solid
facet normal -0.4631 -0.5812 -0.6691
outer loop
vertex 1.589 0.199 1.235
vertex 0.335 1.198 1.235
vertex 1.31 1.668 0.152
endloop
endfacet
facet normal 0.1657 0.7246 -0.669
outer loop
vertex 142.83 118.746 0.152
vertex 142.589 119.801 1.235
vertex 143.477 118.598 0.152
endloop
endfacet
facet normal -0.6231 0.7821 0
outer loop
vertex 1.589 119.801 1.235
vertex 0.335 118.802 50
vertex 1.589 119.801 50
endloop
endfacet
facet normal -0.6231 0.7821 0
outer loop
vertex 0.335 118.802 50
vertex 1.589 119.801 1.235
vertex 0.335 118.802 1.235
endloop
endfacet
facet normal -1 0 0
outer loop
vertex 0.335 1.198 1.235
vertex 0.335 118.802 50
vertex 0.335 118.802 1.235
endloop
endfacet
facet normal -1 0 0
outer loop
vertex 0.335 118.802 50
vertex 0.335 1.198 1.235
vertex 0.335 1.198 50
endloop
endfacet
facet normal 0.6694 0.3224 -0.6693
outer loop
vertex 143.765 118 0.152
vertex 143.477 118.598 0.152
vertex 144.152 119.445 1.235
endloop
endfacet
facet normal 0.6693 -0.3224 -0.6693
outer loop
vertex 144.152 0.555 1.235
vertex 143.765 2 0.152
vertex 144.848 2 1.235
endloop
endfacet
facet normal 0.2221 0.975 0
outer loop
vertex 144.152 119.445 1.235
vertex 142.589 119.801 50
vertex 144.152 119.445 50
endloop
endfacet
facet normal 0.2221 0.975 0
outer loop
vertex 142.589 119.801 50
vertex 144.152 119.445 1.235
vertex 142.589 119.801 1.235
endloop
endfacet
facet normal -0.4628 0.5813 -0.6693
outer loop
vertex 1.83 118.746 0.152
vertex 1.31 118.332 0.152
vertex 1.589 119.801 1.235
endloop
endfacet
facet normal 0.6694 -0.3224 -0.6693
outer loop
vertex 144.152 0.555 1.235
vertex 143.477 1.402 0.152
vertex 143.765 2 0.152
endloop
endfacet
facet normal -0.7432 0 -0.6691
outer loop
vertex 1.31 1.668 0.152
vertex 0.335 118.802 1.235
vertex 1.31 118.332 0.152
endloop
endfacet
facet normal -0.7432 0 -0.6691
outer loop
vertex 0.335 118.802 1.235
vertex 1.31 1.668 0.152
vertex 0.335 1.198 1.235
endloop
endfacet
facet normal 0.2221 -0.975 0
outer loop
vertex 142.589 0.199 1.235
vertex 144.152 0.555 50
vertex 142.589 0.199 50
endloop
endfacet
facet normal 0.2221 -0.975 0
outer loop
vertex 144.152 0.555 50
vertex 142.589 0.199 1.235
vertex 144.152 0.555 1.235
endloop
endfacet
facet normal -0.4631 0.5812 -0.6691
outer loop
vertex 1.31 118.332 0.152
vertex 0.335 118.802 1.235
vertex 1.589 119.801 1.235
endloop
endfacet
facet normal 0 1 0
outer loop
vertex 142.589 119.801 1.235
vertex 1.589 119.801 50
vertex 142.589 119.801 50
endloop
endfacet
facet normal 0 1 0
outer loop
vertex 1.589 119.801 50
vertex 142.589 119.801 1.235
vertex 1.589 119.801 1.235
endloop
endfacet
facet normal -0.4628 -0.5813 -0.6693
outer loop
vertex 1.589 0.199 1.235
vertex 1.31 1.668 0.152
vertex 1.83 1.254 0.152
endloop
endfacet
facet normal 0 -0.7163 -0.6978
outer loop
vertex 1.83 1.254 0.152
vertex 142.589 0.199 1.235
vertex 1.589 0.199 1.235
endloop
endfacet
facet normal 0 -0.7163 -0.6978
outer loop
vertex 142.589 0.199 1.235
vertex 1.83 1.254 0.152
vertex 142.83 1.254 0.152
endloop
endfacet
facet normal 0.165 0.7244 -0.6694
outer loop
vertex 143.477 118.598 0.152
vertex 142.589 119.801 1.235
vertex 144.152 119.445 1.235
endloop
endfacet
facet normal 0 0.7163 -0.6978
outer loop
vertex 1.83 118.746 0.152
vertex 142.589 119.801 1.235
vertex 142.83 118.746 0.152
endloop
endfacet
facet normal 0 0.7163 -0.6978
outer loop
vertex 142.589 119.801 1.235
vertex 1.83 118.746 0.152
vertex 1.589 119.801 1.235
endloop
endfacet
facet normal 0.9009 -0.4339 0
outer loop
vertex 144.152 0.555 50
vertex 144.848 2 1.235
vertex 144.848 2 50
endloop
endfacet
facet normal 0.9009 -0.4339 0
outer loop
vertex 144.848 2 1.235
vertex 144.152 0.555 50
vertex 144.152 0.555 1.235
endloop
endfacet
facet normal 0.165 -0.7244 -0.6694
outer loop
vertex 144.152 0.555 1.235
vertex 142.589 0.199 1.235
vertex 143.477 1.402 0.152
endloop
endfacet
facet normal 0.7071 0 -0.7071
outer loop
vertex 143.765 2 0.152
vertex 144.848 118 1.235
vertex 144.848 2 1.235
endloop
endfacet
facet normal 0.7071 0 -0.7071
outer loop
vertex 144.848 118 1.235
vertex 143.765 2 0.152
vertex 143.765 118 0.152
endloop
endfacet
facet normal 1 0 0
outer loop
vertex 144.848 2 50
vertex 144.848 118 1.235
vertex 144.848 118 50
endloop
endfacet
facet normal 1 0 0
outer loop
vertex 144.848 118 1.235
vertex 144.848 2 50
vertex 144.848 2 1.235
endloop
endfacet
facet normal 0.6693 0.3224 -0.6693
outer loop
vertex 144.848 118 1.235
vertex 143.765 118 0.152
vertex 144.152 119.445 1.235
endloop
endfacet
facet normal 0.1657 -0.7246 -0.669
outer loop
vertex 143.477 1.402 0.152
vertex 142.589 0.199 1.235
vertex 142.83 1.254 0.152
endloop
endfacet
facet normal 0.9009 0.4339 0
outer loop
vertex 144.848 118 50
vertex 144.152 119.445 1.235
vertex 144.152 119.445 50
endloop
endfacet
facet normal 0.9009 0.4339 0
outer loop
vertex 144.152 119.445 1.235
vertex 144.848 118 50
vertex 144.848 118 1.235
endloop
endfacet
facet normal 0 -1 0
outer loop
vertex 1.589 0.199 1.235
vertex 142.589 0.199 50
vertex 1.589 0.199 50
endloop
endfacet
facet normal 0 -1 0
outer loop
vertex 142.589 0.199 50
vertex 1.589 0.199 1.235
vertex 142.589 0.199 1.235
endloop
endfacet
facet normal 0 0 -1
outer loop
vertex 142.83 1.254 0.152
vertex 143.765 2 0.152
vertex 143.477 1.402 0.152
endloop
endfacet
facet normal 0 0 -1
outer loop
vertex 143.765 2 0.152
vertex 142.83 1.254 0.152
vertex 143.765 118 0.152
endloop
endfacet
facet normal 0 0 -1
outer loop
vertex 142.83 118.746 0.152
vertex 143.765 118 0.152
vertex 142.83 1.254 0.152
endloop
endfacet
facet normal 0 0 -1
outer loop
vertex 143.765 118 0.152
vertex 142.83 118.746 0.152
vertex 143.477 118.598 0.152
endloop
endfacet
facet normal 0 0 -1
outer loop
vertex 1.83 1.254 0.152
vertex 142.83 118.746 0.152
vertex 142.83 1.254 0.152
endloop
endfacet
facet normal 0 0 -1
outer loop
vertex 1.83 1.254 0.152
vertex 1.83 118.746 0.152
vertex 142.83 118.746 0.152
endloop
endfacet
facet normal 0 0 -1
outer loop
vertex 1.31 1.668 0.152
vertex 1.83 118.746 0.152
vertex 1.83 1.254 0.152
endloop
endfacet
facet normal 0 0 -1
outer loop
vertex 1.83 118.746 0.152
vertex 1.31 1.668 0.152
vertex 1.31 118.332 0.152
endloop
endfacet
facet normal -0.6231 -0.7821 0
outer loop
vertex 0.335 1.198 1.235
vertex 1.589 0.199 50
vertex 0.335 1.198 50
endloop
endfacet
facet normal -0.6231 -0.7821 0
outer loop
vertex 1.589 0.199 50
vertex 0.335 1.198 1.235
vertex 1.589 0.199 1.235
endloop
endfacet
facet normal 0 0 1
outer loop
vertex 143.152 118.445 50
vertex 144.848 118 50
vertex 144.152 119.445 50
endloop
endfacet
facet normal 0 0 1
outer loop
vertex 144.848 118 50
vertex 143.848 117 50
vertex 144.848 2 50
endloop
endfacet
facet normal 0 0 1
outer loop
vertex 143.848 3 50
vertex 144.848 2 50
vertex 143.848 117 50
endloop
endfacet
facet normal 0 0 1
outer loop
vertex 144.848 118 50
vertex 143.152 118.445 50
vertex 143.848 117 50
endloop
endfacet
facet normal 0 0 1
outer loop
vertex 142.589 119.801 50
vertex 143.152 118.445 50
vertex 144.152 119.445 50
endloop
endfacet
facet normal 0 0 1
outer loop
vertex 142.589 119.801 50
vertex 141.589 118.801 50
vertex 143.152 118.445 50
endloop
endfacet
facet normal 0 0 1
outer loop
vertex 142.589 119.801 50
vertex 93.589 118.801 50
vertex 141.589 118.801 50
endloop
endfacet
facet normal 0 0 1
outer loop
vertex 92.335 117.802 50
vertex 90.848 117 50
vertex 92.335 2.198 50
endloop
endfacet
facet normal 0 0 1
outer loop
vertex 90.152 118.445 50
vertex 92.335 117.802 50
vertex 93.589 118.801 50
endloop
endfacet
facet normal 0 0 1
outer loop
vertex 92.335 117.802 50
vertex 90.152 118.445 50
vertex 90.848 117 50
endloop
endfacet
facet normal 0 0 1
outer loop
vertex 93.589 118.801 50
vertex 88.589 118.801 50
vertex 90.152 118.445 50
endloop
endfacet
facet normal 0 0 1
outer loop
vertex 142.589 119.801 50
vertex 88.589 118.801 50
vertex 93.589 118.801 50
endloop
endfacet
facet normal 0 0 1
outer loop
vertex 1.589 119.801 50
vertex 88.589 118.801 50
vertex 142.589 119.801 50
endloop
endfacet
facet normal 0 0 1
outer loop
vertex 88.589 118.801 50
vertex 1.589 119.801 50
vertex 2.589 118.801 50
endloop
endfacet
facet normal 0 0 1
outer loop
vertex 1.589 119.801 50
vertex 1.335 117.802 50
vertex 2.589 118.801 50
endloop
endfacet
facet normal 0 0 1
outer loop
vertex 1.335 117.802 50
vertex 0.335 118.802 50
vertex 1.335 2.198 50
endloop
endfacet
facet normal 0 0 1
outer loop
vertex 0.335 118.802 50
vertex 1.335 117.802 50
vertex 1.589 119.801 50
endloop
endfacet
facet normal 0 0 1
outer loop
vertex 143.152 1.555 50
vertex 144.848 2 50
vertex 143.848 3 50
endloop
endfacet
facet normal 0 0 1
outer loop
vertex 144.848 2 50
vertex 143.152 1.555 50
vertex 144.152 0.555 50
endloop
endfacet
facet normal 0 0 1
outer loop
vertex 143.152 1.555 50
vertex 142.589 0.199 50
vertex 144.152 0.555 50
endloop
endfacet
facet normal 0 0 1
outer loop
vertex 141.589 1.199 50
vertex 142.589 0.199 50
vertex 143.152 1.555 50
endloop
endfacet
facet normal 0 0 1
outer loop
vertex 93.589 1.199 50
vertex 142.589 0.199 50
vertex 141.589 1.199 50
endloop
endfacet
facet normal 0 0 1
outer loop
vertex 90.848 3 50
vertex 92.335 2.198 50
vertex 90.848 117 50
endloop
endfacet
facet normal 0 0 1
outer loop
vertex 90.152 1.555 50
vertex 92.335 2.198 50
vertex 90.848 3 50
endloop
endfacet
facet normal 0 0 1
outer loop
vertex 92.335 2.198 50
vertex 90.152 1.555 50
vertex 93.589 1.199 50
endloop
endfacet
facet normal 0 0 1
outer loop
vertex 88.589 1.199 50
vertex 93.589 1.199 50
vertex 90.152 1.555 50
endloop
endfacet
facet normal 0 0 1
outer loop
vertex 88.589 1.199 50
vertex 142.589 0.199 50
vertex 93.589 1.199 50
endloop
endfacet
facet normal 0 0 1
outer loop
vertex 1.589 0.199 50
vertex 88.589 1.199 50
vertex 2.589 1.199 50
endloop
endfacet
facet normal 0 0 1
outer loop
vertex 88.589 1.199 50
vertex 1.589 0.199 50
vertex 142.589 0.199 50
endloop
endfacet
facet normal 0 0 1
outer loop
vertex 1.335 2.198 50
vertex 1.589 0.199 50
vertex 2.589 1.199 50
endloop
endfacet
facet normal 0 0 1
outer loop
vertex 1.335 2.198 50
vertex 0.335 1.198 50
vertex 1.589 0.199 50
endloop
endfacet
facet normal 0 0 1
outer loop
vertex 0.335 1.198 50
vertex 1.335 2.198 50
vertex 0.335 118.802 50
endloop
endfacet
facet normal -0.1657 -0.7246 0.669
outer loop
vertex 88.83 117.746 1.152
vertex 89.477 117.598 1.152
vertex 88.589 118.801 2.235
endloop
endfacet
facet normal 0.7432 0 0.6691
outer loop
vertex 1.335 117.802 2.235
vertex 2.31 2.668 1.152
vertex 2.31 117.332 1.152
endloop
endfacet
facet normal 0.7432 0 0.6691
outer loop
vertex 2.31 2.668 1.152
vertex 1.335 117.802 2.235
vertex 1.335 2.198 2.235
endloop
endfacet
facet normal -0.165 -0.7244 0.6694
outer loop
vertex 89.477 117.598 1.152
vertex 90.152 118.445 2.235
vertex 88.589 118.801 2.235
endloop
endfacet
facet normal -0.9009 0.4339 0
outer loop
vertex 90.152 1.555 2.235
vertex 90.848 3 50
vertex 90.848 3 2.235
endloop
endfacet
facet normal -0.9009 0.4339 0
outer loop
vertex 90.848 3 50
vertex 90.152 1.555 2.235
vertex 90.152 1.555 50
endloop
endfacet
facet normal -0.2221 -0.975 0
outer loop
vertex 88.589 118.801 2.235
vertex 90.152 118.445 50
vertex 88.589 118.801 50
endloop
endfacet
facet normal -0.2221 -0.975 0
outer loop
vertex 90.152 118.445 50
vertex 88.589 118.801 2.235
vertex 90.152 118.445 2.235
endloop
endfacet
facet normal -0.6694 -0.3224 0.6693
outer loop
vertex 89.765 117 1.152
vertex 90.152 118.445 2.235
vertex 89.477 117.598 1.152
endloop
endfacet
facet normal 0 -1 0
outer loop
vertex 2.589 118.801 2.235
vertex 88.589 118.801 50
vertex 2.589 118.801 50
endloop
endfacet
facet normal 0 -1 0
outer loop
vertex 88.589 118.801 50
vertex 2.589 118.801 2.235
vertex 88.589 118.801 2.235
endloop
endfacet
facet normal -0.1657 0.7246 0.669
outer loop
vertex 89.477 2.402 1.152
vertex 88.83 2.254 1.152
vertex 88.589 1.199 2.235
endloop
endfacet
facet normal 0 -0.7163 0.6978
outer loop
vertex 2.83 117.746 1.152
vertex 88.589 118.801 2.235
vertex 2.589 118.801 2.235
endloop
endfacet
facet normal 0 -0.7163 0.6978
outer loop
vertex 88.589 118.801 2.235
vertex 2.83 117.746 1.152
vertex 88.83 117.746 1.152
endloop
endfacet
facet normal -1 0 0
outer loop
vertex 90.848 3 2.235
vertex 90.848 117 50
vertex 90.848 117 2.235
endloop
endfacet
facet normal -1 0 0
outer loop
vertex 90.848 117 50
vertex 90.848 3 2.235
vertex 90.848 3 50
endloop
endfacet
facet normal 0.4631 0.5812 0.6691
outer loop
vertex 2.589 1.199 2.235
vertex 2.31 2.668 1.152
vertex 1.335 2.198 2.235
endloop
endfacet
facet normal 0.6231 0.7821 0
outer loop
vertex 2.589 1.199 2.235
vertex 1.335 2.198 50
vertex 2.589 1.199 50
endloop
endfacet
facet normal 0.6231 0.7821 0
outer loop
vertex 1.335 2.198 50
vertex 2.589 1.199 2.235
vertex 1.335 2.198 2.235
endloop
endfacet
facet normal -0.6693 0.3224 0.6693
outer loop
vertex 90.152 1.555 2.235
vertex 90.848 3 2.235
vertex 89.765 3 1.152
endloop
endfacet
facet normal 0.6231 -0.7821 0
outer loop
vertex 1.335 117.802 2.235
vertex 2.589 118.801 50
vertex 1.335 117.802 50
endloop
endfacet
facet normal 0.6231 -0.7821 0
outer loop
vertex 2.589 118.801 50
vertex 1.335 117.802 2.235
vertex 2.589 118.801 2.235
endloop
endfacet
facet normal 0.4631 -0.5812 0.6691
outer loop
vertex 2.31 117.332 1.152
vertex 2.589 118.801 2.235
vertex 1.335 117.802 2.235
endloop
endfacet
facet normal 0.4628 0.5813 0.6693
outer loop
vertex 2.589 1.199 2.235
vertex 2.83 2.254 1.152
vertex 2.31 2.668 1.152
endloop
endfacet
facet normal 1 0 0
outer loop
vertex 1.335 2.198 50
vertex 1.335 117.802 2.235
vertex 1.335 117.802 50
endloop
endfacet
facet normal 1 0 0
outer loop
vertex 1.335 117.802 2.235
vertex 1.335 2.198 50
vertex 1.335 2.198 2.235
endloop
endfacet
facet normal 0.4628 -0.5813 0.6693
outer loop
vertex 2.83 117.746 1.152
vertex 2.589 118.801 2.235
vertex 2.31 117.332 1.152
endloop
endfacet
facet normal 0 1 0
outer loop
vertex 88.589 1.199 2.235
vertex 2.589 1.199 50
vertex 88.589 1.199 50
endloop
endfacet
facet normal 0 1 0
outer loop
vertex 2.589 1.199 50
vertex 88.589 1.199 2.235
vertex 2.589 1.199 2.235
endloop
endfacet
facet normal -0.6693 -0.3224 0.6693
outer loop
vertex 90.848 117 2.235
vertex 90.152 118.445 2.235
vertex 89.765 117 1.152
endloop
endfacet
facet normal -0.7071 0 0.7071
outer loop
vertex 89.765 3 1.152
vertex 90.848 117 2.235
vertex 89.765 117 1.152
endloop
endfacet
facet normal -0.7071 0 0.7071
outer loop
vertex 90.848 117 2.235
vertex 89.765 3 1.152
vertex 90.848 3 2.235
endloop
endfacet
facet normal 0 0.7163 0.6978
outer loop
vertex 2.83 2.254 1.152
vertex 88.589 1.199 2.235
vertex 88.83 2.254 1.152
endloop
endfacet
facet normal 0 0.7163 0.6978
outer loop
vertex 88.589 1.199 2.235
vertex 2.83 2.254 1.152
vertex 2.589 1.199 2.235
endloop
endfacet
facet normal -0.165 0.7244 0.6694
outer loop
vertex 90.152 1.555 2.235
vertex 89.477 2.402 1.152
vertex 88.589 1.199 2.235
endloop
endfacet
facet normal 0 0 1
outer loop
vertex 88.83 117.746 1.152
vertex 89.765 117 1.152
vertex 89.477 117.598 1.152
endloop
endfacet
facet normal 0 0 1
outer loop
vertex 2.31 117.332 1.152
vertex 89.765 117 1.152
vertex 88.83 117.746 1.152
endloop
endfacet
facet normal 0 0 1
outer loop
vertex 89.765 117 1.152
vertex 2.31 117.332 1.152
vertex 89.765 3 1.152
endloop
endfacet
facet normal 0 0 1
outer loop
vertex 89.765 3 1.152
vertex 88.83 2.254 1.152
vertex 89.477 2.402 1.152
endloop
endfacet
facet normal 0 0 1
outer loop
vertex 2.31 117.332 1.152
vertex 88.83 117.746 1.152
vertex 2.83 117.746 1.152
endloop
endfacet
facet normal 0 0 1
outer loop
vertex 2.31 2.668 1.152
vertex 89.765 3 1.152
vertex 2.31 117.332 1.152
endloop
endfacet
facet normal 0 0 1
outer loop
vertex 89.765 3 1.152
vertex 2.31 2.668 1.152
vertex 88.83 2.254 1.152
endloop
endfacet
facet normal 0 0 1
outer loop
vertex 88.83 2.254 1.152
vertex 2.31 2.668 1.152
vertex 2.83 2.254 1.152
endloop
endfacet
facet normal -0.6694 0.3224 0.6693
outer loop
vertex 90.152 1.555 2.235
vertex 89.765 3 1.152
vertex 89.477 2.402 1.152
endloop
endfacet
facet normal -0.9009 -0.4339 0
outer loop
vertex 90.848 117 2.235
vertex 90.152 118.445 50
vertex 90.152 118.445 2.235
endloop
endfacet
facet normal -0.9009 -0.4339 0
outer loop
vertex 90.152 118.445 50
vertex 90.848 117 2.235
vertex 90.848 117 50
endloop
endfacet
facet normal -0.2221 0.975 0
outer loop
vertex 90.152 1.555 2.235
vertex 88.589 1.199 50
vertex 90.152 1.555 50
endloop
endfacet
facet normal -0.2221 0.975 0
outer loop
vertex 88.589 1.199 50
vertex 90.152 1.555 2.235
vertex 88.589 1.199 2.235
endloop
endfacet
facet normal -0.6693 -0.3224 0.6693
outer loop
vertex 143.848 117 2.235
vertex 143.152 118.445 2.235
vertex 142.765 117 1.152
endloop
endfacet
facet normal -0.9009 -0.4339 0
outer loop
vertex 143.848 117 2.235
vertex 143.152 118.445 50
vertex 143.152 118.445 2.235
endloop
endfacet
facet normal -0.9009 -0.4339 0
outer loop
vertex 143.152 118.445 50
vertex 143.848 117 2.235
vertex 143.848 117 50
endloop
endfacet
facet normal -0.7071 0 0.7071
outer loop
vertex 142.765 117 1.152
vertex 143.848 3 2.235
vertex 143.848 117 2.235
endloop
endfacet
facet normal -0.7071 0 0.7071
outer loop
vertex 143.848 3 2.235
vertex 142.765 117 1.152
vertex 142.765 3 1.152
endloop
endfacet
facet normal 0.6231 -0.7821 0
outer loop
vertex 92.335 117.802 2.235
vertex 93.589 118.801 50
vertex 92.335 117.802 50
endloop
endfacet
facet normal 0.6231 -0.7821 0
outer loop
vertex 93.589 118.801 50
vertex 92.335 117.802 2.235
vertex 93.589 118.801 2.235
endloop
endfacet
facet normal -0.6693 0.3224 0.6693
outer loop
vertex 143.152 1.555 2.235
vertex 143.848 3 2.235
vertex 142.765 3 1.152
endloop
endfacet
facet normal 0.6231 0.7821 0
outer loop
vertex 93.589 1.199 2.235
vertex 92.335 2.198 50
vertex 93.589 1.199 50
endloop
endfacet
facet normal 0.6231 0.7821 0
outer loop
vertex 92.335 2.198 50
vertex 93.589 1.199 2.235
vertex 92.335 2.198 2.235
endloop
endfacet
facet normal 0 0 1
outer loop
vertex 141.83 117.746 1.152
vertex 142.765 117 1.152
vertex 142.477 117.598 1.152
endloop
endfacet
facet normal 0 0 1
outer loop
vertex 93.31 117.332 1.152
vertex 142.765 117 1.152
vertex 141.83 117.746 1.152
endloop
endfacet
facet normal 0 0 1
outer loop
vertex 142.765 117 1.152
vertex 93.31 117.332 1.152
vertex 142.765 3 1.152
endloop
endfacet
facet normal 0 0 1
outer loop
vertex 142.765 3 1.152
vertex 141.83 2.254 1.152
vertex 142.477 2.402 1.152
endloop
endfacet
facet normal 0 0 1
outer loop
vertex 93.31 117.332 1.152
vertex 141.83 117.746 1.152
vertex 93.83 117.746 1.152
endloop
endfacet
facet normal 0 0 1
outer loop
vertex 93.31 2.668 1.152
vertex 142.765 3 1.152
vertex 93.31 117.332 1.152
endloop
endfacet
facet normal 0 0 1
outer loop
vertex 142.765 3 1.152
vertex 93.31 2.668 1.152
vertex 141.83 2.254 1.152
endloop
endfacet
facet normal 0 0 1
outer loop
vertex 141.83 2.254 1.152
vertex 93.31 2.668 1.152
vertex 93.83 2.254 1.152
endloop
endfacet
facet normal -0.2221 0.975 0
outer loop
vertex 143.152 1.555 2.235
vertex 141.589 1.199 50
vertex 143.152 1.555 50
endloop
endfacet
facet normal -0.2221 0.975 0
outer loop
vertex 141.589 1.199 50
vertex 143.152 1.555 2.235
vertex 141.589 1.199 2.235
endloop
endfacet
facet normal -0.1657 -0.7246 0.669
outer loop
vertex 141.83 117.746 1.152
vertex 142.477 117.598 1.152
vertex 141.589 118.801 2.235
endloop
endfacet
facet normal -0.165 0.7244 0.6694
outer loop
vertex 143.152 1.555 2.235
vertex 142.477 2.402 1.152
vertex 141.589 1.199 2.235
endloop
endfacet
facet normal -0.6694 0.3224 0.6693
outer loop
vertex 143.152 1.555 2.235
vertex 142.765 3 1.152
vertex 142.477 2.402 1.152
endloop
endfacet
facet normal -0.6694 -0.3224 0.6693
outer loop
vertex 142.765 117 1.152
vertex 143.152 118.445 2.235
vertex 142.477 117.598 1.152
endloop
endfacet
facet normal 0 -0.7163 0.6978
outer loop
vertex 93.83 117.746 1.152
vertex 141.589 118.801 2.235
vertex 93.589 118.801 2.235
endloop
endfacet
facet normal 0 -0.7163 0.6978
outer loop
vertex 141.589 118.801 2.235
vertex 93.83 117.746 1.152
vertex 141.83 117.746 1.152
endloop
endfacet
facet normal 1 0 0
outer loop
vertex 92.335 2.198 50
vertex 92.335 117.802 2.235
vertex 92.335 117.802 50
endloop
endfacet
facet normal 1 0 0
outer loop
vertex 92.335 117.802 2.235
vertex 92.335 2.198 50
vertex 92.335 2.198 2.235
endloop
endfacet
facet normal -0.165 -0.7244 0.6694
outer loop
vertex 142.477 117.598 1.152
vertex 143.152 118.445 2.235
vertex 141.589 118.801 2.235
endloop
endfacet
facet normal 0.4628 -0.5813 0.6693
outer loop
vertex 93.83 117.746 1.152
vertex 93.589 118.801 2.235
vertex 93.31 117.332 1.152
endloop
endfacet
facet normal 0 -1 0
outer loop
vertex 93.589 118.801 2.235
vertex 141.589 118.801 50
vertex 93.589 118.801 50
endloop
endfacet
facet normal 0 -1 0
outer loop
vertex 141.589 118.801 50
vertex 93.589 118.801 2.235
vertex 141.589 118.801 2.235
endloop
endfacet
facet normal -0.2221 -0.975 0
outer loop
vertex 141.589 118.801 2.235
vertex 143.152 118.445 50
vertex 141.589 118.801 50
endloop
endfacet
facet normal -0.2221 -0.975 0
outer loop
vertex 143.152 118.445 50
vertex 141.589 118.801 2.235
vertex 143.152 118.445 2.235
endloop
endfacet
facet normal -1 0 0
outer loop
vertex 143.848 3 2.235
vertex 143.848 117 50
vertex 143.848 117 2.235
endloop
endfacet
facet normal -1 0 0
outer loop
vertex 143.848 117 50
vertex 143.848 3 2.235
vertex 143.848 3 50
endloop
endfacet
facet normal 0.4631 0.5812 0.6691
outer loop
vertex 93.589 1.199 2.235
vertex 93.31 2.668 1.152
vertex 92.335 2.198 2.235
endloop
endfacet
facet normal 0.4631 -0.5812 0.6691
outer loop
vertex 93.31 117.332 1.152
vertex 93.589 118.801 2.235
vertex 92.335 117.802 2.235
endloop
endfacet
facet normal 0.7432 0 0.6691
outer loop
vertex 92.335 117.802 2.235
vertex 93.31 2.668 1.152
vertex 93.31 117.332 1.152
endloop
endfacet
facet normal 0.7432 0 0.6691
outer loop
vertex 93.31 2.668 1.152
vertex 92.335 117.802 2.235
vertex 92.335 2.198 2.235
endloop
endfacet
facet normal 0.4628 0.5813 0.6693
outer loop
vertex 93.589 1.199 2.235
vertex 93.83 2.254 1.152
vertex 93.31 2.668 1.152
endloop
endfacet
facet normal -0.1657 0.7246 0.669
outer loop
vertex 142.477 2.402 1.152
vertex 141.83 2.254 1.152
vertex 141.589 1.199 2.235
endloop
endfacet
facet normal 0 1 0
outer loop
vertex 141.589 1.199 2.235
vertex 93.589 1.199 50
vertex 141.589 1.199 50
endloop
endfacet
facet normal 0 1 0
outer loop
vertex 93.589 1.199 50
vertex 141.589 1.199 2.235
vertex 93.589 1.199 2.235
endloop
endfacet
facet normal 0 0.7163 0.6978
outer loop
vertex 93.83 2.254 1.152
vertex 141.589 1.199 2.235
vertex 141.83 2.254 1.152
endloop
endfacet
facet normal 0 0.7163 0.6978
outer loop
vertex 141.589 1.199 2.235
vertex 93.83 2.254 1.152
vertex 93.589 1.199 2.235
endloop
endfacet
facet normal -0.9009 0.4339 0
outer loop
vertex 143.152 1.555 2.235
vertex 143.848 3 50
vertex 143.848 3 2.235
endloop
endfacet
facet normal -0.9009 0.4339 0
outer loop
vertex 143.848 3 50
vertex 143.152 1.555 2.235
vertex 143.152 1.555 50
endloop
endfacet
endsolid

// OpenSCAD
// file: ../utility/round-bottom-box.scad
module spheres(width,length,height,radius) {
  translate([radius,radius,radius]) sphere(radius);
  translate([width-radius, length-radius, radius]) sphere(radius);
  translate([width-radius, radius, radius]) sphere(radius);
  translate([radius, length-radius, radius]) sphere(radius);
}

module slicer(width,length,height) {
  translate([0,0,height]) cube([width, length, height]); 
}

module round_bottom_box(width, length, height,radius) {
  difference() {
    hull() {
      spheres(width,length,height,radius);
      translate([0,0,height]) spheres(width,length,height,radius);
    }
    slicer(width, length, height);
  }
}
// main file
use <../utility/round-bottom-box.scad>

alex_drawer_width = 290;

radius = 2;
width = alex_drawer_width/2;
length = 120;
height = 50;
wall = 1;

// +--------------+-------+
// | large        | small | 
// |              |       |
// |              |       |
// |              |       |
// |              |       |
// |              |       |
// +-------+------+-------+

large_width = 90;
large_length = length - 2*wall;

small_width = width - large_width - 3*wall;
small_length = large_length;

second_column_x = wall + large_width + wall;

module box() {
  difference() {
    round_bottom_box(width,length,height,radius);
    large();
    small();
  }
}

module large() {
  translate([wall, wall ,wall]) 
    round_bottom_box(large_width, large_length, height, radius);
}

module small() {
  translate([second_column_x, wall, wall])
    round_bottom_box(small_width, small_length, height, radius);
}

box();
